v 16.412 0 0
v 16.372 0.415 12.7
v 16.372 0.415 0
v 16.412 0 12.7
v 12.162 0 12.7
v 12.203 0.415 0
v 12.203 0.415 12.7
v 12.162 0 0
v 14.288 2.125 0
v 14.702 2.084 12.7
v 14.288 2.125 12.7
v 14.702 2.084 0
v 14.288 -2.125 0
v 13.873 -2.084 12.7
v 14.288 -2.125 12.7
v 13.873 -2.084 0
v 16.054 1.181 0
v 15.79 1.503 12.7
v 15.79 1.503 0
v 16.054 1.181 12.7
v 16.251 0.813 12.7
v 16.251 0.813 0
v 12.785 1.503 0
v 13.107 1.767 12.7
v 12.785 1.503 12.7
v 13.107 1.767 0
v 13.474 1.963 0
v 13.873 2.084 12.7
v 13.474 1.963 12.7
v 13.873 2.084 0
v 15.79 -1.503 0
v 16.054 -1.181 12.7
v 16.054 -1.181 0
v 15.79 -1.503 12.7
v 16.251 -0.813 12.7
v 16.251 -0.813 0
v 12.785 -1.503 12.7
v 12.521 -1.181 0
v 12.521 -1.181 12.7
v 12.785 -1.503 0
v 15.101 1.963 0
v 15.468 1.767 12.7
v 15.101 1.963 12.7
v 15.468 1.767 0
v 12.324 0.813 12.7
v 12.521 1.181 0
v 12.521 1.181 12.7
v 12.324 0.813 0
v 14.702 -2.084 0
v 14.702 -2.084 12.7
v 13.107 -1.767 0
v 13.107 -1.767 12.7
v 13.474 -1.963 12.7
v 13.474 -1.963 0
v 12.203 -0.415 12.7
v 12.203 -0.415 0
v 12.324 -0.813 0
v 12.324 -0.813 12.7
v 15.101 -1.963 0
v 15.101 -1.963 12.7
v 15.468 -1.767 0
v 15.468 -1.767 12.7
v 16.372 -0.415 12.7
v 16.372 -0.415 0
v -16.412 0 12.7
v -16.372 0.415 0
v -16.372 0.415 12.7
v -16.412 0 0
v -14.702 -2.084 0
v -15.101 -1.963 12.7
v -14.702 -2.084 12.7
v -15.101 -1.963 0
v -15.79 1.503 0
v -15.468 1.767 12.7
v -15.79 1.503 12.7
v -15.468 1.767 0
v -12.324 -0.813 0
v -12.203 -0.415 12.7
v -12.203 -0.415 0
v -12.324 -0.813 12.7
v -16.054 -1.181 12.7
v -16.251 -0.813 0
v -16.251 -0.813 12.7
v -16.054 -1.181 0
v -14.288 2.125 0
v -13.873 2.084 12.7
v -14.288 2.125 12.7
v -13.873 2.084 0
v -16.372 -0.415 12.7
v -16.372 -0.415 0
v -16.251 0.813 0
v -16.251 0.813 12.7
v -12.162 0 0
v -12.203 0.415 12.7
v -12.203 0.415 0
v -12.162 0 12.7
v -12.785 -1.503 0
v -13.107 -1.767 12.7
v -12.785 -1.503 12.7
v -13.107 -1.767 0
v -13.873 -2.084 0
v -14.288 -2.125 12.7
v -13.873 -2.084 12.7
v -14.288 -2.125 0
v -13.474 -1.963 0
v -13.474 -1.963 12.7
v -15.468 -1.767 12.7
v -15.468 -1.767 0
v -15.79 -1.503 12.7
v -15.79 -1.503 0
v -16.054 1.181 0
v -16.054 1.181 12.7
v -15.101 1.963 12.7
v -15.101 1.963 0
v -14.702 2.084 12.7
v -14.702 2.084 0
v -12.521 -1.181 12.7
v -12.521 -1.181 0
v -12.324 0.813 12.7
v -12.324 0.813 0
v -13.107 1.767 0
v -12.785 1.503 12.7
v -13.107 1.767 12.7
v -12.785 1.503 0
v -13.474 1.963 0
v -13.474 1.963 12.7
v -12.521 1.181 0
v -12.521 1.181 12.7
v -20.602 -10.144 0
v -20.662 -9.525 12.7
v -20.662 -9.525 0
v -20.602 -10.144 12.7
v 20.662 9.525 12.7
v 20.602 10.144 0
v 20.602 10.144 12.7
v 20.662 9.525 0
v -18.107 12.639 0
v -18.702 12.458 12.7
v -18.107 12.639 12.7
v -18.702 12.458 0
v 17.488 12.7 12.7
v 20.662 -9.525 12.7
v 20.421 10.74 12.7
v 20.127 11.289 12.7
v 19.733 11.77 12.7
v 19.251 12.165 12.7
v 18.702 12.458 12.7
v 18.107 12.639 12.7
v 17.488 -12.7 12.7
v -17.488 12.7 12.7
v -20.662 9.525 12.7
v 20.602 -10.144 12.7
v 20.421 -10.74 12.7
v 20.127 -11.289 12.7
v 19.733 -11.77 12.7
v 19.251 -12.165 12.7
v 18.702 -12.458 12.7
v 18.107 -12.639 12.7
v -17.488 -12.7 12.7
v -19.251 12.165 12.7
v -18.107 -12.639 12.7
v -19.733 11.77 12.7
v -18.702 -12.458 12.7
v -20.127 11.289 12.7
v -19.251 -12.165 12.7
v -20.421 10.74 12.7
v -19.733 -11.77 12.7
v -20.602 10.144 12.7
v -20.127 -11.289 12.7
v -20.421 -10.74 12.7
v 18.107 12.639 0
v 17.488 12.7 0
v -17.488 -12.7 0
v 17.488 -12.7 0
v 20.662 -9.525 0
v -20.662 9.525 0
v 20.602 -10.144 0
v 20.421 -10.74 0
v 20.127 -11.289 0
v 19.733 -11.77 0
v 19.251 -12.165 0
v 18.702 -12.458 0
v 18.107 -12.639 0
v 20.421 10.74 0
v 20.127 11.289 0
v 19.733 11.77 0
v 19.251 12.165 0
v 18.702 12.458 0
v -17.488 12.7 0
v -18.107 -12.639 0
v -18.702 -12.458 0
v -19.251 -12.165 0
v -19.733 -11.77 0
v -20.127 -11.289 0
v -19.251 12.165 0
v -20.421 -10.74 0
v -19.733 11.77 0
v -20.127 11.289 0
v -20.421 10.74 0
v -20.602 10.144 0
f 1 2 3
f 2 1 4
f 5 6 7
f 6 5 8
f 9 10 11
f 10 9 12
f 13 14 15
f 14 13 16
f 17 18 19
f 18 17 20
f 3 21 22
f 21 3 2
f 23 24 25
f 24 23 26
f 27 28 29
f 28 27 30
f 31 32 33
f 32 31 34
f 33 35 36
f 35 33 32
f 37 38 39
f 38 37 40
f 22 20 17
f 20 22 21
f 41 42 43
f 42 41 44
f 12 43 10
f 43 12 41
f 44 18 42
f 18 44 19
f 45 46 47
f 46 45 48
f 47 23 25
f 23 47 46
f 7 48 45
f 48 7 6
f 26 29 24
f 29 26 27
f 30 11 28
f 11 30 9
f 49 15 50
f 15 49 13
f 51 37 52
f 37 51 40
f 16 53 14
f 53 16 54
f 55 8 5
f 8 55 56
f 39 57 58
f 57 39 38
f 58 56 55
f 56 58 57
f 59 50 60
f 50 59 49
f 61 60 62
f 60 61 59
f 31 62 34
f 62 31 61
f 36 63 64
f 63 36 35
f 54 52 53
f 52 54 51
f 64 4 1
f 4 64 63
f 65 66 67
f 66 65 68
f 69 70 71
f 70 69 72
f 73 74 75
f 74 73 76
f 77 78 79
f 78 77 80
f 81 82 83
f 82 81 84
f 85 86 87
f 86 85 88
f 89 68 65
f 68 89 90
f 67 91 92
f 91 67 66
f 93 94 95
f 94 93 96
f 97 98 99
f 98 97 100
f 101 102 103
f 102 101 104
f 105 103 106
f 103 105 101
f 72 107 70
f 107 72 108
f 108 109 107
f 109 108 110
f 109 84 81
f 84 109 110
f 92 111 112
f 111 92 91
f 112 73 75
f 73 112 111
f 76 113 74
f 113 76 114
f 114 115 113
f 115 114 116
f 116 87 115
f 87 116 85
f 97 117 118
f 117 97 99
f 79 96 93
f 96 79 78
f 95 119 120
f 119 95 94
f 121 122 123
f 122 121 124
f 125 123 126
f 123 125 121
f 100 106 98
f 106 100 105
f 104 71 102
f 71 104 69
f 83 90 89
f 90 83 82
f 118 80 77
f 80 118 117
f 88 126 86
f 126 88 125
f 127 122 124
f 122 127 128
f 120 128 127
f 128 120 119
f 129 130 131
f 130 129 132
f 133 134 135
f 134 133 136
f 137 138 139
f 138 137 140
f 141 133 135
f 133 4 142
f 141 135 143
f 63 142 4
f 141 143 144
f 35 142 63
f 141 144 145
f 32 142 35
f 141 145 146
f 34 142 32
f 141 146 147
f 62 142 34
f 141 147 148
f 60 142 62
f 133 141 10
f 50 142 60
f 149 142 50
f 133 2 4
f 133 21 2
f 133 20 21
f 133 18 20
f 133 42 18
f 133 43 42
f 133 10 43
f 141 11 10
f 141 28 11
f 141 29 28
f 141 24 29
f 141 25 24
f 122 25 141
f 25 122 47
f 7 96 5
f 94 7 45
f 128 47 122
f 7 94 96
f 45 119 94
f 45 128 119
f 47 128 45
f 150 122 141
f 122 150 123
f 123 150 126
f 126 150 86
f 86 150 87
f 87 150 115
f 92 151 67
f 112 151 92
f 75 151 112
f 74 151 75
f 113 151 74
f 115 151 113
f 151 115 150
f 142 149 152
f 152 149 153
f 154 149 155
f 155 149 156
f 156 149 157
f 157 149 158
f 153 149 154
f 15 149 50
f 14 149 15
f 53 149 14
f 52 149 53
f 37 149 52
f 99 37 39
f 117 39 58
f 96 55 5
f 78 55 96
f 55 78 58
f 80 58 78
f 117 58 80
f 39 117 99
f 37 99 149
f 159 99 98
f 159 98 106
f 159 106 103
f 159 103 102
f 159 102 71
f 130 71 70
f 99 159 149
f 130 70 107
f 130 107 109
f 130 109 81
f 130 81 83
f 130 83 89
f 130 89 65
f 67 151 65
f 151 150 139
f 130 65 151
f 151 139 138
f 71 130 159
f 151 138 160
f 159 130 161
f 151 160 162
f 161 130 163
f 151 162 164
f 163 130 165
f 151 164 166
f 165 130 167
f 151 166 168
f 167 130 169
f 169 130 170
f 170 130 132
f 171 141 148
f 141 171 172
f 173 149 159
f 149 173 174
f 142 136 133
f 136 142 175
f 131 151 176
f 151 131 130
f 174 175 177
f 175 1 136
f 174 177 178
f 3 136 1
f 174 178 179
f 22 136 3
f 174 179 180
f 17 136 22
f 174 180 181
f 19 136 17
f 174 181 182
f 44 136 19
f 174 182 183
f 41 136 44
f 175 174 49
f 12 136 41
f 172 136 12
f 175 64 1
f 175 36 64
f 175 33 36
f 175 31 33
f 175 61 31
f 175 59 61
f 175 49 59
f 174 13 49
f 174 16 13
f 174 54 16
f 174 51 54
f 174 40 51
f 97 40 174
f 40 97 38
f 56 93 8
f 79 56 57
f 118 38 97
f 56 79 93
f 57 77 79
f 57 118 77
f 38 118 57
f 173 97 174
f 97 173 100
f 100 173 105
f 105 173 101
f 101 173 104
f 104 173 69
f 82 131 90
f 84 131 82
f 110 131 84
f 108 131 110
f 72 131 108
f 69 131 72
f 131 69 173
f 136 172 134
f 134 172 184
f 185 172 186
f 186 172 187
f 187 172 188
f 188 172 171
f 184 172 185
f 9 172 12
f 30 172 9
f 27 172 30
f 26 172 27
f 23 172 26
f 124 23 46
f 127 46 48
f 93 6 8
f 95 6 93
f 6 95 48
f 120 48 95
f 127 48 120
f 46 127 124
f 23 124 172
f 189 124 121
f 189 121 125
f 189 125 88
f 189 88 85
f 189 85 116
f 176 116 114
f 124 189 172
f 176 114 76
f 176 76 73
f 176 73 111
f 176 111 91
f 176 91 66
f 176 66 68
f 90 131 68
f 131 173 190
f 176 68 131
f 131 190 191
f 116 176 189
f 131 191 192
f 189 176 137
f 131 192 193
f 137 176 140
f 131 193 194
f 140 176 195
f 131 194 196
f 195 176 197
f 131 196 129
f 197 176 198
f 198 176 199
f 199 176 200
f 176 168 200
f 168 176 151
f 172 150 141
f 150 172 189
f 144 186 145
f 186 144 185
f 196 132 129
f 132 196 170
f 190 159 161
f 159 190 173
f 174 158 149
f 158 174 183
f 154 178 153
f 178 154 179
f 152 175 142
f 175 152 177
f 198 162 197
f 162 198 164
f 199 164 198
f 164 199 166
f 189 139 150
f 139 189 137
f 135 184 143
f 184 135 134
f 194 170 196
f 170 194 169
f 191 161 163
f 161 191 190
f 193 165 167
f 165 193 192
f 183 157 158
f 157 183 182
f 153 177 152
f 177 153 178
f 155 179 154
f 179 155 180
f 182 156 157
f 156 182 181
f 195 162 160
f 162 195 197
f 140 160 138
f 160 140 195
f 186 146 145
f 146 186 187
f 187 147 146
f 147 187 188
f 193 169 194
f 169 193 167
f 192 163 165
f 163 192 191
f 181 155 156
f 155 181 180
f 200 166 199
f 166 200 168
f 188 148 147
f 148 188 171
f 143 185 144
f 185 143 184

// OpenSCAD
in = 25.4;

screw_sep = in*(1+1/8);
screw_rad = 2.125;

width = screw_sep + screw_rad*6;
length = in;
height = in/2;

screw_len = 25;
// 20 - 12.5 = 7 - 3 = 4

z_motor_spacer();

$fn=32;

module z_motor_spacer(){
    min_rad = in/8;
    
    difference(){
        union(){
            hull() for(i=[0:1]) for(j=[0:1]) mirror([i,0,0]) mirror([0,j,0]) translate([width/2-min_rad, length/2-min_rad, 0]){
                cylinder(r=min_rad, h=height);
            }
        }
        
        for(i=[0:1]) mirror([i,0,0]) translate([screw_sep/2, 0, -.1]){
            cylinder(r=screw_rad, h=height+.2);
        } 
    }
}
